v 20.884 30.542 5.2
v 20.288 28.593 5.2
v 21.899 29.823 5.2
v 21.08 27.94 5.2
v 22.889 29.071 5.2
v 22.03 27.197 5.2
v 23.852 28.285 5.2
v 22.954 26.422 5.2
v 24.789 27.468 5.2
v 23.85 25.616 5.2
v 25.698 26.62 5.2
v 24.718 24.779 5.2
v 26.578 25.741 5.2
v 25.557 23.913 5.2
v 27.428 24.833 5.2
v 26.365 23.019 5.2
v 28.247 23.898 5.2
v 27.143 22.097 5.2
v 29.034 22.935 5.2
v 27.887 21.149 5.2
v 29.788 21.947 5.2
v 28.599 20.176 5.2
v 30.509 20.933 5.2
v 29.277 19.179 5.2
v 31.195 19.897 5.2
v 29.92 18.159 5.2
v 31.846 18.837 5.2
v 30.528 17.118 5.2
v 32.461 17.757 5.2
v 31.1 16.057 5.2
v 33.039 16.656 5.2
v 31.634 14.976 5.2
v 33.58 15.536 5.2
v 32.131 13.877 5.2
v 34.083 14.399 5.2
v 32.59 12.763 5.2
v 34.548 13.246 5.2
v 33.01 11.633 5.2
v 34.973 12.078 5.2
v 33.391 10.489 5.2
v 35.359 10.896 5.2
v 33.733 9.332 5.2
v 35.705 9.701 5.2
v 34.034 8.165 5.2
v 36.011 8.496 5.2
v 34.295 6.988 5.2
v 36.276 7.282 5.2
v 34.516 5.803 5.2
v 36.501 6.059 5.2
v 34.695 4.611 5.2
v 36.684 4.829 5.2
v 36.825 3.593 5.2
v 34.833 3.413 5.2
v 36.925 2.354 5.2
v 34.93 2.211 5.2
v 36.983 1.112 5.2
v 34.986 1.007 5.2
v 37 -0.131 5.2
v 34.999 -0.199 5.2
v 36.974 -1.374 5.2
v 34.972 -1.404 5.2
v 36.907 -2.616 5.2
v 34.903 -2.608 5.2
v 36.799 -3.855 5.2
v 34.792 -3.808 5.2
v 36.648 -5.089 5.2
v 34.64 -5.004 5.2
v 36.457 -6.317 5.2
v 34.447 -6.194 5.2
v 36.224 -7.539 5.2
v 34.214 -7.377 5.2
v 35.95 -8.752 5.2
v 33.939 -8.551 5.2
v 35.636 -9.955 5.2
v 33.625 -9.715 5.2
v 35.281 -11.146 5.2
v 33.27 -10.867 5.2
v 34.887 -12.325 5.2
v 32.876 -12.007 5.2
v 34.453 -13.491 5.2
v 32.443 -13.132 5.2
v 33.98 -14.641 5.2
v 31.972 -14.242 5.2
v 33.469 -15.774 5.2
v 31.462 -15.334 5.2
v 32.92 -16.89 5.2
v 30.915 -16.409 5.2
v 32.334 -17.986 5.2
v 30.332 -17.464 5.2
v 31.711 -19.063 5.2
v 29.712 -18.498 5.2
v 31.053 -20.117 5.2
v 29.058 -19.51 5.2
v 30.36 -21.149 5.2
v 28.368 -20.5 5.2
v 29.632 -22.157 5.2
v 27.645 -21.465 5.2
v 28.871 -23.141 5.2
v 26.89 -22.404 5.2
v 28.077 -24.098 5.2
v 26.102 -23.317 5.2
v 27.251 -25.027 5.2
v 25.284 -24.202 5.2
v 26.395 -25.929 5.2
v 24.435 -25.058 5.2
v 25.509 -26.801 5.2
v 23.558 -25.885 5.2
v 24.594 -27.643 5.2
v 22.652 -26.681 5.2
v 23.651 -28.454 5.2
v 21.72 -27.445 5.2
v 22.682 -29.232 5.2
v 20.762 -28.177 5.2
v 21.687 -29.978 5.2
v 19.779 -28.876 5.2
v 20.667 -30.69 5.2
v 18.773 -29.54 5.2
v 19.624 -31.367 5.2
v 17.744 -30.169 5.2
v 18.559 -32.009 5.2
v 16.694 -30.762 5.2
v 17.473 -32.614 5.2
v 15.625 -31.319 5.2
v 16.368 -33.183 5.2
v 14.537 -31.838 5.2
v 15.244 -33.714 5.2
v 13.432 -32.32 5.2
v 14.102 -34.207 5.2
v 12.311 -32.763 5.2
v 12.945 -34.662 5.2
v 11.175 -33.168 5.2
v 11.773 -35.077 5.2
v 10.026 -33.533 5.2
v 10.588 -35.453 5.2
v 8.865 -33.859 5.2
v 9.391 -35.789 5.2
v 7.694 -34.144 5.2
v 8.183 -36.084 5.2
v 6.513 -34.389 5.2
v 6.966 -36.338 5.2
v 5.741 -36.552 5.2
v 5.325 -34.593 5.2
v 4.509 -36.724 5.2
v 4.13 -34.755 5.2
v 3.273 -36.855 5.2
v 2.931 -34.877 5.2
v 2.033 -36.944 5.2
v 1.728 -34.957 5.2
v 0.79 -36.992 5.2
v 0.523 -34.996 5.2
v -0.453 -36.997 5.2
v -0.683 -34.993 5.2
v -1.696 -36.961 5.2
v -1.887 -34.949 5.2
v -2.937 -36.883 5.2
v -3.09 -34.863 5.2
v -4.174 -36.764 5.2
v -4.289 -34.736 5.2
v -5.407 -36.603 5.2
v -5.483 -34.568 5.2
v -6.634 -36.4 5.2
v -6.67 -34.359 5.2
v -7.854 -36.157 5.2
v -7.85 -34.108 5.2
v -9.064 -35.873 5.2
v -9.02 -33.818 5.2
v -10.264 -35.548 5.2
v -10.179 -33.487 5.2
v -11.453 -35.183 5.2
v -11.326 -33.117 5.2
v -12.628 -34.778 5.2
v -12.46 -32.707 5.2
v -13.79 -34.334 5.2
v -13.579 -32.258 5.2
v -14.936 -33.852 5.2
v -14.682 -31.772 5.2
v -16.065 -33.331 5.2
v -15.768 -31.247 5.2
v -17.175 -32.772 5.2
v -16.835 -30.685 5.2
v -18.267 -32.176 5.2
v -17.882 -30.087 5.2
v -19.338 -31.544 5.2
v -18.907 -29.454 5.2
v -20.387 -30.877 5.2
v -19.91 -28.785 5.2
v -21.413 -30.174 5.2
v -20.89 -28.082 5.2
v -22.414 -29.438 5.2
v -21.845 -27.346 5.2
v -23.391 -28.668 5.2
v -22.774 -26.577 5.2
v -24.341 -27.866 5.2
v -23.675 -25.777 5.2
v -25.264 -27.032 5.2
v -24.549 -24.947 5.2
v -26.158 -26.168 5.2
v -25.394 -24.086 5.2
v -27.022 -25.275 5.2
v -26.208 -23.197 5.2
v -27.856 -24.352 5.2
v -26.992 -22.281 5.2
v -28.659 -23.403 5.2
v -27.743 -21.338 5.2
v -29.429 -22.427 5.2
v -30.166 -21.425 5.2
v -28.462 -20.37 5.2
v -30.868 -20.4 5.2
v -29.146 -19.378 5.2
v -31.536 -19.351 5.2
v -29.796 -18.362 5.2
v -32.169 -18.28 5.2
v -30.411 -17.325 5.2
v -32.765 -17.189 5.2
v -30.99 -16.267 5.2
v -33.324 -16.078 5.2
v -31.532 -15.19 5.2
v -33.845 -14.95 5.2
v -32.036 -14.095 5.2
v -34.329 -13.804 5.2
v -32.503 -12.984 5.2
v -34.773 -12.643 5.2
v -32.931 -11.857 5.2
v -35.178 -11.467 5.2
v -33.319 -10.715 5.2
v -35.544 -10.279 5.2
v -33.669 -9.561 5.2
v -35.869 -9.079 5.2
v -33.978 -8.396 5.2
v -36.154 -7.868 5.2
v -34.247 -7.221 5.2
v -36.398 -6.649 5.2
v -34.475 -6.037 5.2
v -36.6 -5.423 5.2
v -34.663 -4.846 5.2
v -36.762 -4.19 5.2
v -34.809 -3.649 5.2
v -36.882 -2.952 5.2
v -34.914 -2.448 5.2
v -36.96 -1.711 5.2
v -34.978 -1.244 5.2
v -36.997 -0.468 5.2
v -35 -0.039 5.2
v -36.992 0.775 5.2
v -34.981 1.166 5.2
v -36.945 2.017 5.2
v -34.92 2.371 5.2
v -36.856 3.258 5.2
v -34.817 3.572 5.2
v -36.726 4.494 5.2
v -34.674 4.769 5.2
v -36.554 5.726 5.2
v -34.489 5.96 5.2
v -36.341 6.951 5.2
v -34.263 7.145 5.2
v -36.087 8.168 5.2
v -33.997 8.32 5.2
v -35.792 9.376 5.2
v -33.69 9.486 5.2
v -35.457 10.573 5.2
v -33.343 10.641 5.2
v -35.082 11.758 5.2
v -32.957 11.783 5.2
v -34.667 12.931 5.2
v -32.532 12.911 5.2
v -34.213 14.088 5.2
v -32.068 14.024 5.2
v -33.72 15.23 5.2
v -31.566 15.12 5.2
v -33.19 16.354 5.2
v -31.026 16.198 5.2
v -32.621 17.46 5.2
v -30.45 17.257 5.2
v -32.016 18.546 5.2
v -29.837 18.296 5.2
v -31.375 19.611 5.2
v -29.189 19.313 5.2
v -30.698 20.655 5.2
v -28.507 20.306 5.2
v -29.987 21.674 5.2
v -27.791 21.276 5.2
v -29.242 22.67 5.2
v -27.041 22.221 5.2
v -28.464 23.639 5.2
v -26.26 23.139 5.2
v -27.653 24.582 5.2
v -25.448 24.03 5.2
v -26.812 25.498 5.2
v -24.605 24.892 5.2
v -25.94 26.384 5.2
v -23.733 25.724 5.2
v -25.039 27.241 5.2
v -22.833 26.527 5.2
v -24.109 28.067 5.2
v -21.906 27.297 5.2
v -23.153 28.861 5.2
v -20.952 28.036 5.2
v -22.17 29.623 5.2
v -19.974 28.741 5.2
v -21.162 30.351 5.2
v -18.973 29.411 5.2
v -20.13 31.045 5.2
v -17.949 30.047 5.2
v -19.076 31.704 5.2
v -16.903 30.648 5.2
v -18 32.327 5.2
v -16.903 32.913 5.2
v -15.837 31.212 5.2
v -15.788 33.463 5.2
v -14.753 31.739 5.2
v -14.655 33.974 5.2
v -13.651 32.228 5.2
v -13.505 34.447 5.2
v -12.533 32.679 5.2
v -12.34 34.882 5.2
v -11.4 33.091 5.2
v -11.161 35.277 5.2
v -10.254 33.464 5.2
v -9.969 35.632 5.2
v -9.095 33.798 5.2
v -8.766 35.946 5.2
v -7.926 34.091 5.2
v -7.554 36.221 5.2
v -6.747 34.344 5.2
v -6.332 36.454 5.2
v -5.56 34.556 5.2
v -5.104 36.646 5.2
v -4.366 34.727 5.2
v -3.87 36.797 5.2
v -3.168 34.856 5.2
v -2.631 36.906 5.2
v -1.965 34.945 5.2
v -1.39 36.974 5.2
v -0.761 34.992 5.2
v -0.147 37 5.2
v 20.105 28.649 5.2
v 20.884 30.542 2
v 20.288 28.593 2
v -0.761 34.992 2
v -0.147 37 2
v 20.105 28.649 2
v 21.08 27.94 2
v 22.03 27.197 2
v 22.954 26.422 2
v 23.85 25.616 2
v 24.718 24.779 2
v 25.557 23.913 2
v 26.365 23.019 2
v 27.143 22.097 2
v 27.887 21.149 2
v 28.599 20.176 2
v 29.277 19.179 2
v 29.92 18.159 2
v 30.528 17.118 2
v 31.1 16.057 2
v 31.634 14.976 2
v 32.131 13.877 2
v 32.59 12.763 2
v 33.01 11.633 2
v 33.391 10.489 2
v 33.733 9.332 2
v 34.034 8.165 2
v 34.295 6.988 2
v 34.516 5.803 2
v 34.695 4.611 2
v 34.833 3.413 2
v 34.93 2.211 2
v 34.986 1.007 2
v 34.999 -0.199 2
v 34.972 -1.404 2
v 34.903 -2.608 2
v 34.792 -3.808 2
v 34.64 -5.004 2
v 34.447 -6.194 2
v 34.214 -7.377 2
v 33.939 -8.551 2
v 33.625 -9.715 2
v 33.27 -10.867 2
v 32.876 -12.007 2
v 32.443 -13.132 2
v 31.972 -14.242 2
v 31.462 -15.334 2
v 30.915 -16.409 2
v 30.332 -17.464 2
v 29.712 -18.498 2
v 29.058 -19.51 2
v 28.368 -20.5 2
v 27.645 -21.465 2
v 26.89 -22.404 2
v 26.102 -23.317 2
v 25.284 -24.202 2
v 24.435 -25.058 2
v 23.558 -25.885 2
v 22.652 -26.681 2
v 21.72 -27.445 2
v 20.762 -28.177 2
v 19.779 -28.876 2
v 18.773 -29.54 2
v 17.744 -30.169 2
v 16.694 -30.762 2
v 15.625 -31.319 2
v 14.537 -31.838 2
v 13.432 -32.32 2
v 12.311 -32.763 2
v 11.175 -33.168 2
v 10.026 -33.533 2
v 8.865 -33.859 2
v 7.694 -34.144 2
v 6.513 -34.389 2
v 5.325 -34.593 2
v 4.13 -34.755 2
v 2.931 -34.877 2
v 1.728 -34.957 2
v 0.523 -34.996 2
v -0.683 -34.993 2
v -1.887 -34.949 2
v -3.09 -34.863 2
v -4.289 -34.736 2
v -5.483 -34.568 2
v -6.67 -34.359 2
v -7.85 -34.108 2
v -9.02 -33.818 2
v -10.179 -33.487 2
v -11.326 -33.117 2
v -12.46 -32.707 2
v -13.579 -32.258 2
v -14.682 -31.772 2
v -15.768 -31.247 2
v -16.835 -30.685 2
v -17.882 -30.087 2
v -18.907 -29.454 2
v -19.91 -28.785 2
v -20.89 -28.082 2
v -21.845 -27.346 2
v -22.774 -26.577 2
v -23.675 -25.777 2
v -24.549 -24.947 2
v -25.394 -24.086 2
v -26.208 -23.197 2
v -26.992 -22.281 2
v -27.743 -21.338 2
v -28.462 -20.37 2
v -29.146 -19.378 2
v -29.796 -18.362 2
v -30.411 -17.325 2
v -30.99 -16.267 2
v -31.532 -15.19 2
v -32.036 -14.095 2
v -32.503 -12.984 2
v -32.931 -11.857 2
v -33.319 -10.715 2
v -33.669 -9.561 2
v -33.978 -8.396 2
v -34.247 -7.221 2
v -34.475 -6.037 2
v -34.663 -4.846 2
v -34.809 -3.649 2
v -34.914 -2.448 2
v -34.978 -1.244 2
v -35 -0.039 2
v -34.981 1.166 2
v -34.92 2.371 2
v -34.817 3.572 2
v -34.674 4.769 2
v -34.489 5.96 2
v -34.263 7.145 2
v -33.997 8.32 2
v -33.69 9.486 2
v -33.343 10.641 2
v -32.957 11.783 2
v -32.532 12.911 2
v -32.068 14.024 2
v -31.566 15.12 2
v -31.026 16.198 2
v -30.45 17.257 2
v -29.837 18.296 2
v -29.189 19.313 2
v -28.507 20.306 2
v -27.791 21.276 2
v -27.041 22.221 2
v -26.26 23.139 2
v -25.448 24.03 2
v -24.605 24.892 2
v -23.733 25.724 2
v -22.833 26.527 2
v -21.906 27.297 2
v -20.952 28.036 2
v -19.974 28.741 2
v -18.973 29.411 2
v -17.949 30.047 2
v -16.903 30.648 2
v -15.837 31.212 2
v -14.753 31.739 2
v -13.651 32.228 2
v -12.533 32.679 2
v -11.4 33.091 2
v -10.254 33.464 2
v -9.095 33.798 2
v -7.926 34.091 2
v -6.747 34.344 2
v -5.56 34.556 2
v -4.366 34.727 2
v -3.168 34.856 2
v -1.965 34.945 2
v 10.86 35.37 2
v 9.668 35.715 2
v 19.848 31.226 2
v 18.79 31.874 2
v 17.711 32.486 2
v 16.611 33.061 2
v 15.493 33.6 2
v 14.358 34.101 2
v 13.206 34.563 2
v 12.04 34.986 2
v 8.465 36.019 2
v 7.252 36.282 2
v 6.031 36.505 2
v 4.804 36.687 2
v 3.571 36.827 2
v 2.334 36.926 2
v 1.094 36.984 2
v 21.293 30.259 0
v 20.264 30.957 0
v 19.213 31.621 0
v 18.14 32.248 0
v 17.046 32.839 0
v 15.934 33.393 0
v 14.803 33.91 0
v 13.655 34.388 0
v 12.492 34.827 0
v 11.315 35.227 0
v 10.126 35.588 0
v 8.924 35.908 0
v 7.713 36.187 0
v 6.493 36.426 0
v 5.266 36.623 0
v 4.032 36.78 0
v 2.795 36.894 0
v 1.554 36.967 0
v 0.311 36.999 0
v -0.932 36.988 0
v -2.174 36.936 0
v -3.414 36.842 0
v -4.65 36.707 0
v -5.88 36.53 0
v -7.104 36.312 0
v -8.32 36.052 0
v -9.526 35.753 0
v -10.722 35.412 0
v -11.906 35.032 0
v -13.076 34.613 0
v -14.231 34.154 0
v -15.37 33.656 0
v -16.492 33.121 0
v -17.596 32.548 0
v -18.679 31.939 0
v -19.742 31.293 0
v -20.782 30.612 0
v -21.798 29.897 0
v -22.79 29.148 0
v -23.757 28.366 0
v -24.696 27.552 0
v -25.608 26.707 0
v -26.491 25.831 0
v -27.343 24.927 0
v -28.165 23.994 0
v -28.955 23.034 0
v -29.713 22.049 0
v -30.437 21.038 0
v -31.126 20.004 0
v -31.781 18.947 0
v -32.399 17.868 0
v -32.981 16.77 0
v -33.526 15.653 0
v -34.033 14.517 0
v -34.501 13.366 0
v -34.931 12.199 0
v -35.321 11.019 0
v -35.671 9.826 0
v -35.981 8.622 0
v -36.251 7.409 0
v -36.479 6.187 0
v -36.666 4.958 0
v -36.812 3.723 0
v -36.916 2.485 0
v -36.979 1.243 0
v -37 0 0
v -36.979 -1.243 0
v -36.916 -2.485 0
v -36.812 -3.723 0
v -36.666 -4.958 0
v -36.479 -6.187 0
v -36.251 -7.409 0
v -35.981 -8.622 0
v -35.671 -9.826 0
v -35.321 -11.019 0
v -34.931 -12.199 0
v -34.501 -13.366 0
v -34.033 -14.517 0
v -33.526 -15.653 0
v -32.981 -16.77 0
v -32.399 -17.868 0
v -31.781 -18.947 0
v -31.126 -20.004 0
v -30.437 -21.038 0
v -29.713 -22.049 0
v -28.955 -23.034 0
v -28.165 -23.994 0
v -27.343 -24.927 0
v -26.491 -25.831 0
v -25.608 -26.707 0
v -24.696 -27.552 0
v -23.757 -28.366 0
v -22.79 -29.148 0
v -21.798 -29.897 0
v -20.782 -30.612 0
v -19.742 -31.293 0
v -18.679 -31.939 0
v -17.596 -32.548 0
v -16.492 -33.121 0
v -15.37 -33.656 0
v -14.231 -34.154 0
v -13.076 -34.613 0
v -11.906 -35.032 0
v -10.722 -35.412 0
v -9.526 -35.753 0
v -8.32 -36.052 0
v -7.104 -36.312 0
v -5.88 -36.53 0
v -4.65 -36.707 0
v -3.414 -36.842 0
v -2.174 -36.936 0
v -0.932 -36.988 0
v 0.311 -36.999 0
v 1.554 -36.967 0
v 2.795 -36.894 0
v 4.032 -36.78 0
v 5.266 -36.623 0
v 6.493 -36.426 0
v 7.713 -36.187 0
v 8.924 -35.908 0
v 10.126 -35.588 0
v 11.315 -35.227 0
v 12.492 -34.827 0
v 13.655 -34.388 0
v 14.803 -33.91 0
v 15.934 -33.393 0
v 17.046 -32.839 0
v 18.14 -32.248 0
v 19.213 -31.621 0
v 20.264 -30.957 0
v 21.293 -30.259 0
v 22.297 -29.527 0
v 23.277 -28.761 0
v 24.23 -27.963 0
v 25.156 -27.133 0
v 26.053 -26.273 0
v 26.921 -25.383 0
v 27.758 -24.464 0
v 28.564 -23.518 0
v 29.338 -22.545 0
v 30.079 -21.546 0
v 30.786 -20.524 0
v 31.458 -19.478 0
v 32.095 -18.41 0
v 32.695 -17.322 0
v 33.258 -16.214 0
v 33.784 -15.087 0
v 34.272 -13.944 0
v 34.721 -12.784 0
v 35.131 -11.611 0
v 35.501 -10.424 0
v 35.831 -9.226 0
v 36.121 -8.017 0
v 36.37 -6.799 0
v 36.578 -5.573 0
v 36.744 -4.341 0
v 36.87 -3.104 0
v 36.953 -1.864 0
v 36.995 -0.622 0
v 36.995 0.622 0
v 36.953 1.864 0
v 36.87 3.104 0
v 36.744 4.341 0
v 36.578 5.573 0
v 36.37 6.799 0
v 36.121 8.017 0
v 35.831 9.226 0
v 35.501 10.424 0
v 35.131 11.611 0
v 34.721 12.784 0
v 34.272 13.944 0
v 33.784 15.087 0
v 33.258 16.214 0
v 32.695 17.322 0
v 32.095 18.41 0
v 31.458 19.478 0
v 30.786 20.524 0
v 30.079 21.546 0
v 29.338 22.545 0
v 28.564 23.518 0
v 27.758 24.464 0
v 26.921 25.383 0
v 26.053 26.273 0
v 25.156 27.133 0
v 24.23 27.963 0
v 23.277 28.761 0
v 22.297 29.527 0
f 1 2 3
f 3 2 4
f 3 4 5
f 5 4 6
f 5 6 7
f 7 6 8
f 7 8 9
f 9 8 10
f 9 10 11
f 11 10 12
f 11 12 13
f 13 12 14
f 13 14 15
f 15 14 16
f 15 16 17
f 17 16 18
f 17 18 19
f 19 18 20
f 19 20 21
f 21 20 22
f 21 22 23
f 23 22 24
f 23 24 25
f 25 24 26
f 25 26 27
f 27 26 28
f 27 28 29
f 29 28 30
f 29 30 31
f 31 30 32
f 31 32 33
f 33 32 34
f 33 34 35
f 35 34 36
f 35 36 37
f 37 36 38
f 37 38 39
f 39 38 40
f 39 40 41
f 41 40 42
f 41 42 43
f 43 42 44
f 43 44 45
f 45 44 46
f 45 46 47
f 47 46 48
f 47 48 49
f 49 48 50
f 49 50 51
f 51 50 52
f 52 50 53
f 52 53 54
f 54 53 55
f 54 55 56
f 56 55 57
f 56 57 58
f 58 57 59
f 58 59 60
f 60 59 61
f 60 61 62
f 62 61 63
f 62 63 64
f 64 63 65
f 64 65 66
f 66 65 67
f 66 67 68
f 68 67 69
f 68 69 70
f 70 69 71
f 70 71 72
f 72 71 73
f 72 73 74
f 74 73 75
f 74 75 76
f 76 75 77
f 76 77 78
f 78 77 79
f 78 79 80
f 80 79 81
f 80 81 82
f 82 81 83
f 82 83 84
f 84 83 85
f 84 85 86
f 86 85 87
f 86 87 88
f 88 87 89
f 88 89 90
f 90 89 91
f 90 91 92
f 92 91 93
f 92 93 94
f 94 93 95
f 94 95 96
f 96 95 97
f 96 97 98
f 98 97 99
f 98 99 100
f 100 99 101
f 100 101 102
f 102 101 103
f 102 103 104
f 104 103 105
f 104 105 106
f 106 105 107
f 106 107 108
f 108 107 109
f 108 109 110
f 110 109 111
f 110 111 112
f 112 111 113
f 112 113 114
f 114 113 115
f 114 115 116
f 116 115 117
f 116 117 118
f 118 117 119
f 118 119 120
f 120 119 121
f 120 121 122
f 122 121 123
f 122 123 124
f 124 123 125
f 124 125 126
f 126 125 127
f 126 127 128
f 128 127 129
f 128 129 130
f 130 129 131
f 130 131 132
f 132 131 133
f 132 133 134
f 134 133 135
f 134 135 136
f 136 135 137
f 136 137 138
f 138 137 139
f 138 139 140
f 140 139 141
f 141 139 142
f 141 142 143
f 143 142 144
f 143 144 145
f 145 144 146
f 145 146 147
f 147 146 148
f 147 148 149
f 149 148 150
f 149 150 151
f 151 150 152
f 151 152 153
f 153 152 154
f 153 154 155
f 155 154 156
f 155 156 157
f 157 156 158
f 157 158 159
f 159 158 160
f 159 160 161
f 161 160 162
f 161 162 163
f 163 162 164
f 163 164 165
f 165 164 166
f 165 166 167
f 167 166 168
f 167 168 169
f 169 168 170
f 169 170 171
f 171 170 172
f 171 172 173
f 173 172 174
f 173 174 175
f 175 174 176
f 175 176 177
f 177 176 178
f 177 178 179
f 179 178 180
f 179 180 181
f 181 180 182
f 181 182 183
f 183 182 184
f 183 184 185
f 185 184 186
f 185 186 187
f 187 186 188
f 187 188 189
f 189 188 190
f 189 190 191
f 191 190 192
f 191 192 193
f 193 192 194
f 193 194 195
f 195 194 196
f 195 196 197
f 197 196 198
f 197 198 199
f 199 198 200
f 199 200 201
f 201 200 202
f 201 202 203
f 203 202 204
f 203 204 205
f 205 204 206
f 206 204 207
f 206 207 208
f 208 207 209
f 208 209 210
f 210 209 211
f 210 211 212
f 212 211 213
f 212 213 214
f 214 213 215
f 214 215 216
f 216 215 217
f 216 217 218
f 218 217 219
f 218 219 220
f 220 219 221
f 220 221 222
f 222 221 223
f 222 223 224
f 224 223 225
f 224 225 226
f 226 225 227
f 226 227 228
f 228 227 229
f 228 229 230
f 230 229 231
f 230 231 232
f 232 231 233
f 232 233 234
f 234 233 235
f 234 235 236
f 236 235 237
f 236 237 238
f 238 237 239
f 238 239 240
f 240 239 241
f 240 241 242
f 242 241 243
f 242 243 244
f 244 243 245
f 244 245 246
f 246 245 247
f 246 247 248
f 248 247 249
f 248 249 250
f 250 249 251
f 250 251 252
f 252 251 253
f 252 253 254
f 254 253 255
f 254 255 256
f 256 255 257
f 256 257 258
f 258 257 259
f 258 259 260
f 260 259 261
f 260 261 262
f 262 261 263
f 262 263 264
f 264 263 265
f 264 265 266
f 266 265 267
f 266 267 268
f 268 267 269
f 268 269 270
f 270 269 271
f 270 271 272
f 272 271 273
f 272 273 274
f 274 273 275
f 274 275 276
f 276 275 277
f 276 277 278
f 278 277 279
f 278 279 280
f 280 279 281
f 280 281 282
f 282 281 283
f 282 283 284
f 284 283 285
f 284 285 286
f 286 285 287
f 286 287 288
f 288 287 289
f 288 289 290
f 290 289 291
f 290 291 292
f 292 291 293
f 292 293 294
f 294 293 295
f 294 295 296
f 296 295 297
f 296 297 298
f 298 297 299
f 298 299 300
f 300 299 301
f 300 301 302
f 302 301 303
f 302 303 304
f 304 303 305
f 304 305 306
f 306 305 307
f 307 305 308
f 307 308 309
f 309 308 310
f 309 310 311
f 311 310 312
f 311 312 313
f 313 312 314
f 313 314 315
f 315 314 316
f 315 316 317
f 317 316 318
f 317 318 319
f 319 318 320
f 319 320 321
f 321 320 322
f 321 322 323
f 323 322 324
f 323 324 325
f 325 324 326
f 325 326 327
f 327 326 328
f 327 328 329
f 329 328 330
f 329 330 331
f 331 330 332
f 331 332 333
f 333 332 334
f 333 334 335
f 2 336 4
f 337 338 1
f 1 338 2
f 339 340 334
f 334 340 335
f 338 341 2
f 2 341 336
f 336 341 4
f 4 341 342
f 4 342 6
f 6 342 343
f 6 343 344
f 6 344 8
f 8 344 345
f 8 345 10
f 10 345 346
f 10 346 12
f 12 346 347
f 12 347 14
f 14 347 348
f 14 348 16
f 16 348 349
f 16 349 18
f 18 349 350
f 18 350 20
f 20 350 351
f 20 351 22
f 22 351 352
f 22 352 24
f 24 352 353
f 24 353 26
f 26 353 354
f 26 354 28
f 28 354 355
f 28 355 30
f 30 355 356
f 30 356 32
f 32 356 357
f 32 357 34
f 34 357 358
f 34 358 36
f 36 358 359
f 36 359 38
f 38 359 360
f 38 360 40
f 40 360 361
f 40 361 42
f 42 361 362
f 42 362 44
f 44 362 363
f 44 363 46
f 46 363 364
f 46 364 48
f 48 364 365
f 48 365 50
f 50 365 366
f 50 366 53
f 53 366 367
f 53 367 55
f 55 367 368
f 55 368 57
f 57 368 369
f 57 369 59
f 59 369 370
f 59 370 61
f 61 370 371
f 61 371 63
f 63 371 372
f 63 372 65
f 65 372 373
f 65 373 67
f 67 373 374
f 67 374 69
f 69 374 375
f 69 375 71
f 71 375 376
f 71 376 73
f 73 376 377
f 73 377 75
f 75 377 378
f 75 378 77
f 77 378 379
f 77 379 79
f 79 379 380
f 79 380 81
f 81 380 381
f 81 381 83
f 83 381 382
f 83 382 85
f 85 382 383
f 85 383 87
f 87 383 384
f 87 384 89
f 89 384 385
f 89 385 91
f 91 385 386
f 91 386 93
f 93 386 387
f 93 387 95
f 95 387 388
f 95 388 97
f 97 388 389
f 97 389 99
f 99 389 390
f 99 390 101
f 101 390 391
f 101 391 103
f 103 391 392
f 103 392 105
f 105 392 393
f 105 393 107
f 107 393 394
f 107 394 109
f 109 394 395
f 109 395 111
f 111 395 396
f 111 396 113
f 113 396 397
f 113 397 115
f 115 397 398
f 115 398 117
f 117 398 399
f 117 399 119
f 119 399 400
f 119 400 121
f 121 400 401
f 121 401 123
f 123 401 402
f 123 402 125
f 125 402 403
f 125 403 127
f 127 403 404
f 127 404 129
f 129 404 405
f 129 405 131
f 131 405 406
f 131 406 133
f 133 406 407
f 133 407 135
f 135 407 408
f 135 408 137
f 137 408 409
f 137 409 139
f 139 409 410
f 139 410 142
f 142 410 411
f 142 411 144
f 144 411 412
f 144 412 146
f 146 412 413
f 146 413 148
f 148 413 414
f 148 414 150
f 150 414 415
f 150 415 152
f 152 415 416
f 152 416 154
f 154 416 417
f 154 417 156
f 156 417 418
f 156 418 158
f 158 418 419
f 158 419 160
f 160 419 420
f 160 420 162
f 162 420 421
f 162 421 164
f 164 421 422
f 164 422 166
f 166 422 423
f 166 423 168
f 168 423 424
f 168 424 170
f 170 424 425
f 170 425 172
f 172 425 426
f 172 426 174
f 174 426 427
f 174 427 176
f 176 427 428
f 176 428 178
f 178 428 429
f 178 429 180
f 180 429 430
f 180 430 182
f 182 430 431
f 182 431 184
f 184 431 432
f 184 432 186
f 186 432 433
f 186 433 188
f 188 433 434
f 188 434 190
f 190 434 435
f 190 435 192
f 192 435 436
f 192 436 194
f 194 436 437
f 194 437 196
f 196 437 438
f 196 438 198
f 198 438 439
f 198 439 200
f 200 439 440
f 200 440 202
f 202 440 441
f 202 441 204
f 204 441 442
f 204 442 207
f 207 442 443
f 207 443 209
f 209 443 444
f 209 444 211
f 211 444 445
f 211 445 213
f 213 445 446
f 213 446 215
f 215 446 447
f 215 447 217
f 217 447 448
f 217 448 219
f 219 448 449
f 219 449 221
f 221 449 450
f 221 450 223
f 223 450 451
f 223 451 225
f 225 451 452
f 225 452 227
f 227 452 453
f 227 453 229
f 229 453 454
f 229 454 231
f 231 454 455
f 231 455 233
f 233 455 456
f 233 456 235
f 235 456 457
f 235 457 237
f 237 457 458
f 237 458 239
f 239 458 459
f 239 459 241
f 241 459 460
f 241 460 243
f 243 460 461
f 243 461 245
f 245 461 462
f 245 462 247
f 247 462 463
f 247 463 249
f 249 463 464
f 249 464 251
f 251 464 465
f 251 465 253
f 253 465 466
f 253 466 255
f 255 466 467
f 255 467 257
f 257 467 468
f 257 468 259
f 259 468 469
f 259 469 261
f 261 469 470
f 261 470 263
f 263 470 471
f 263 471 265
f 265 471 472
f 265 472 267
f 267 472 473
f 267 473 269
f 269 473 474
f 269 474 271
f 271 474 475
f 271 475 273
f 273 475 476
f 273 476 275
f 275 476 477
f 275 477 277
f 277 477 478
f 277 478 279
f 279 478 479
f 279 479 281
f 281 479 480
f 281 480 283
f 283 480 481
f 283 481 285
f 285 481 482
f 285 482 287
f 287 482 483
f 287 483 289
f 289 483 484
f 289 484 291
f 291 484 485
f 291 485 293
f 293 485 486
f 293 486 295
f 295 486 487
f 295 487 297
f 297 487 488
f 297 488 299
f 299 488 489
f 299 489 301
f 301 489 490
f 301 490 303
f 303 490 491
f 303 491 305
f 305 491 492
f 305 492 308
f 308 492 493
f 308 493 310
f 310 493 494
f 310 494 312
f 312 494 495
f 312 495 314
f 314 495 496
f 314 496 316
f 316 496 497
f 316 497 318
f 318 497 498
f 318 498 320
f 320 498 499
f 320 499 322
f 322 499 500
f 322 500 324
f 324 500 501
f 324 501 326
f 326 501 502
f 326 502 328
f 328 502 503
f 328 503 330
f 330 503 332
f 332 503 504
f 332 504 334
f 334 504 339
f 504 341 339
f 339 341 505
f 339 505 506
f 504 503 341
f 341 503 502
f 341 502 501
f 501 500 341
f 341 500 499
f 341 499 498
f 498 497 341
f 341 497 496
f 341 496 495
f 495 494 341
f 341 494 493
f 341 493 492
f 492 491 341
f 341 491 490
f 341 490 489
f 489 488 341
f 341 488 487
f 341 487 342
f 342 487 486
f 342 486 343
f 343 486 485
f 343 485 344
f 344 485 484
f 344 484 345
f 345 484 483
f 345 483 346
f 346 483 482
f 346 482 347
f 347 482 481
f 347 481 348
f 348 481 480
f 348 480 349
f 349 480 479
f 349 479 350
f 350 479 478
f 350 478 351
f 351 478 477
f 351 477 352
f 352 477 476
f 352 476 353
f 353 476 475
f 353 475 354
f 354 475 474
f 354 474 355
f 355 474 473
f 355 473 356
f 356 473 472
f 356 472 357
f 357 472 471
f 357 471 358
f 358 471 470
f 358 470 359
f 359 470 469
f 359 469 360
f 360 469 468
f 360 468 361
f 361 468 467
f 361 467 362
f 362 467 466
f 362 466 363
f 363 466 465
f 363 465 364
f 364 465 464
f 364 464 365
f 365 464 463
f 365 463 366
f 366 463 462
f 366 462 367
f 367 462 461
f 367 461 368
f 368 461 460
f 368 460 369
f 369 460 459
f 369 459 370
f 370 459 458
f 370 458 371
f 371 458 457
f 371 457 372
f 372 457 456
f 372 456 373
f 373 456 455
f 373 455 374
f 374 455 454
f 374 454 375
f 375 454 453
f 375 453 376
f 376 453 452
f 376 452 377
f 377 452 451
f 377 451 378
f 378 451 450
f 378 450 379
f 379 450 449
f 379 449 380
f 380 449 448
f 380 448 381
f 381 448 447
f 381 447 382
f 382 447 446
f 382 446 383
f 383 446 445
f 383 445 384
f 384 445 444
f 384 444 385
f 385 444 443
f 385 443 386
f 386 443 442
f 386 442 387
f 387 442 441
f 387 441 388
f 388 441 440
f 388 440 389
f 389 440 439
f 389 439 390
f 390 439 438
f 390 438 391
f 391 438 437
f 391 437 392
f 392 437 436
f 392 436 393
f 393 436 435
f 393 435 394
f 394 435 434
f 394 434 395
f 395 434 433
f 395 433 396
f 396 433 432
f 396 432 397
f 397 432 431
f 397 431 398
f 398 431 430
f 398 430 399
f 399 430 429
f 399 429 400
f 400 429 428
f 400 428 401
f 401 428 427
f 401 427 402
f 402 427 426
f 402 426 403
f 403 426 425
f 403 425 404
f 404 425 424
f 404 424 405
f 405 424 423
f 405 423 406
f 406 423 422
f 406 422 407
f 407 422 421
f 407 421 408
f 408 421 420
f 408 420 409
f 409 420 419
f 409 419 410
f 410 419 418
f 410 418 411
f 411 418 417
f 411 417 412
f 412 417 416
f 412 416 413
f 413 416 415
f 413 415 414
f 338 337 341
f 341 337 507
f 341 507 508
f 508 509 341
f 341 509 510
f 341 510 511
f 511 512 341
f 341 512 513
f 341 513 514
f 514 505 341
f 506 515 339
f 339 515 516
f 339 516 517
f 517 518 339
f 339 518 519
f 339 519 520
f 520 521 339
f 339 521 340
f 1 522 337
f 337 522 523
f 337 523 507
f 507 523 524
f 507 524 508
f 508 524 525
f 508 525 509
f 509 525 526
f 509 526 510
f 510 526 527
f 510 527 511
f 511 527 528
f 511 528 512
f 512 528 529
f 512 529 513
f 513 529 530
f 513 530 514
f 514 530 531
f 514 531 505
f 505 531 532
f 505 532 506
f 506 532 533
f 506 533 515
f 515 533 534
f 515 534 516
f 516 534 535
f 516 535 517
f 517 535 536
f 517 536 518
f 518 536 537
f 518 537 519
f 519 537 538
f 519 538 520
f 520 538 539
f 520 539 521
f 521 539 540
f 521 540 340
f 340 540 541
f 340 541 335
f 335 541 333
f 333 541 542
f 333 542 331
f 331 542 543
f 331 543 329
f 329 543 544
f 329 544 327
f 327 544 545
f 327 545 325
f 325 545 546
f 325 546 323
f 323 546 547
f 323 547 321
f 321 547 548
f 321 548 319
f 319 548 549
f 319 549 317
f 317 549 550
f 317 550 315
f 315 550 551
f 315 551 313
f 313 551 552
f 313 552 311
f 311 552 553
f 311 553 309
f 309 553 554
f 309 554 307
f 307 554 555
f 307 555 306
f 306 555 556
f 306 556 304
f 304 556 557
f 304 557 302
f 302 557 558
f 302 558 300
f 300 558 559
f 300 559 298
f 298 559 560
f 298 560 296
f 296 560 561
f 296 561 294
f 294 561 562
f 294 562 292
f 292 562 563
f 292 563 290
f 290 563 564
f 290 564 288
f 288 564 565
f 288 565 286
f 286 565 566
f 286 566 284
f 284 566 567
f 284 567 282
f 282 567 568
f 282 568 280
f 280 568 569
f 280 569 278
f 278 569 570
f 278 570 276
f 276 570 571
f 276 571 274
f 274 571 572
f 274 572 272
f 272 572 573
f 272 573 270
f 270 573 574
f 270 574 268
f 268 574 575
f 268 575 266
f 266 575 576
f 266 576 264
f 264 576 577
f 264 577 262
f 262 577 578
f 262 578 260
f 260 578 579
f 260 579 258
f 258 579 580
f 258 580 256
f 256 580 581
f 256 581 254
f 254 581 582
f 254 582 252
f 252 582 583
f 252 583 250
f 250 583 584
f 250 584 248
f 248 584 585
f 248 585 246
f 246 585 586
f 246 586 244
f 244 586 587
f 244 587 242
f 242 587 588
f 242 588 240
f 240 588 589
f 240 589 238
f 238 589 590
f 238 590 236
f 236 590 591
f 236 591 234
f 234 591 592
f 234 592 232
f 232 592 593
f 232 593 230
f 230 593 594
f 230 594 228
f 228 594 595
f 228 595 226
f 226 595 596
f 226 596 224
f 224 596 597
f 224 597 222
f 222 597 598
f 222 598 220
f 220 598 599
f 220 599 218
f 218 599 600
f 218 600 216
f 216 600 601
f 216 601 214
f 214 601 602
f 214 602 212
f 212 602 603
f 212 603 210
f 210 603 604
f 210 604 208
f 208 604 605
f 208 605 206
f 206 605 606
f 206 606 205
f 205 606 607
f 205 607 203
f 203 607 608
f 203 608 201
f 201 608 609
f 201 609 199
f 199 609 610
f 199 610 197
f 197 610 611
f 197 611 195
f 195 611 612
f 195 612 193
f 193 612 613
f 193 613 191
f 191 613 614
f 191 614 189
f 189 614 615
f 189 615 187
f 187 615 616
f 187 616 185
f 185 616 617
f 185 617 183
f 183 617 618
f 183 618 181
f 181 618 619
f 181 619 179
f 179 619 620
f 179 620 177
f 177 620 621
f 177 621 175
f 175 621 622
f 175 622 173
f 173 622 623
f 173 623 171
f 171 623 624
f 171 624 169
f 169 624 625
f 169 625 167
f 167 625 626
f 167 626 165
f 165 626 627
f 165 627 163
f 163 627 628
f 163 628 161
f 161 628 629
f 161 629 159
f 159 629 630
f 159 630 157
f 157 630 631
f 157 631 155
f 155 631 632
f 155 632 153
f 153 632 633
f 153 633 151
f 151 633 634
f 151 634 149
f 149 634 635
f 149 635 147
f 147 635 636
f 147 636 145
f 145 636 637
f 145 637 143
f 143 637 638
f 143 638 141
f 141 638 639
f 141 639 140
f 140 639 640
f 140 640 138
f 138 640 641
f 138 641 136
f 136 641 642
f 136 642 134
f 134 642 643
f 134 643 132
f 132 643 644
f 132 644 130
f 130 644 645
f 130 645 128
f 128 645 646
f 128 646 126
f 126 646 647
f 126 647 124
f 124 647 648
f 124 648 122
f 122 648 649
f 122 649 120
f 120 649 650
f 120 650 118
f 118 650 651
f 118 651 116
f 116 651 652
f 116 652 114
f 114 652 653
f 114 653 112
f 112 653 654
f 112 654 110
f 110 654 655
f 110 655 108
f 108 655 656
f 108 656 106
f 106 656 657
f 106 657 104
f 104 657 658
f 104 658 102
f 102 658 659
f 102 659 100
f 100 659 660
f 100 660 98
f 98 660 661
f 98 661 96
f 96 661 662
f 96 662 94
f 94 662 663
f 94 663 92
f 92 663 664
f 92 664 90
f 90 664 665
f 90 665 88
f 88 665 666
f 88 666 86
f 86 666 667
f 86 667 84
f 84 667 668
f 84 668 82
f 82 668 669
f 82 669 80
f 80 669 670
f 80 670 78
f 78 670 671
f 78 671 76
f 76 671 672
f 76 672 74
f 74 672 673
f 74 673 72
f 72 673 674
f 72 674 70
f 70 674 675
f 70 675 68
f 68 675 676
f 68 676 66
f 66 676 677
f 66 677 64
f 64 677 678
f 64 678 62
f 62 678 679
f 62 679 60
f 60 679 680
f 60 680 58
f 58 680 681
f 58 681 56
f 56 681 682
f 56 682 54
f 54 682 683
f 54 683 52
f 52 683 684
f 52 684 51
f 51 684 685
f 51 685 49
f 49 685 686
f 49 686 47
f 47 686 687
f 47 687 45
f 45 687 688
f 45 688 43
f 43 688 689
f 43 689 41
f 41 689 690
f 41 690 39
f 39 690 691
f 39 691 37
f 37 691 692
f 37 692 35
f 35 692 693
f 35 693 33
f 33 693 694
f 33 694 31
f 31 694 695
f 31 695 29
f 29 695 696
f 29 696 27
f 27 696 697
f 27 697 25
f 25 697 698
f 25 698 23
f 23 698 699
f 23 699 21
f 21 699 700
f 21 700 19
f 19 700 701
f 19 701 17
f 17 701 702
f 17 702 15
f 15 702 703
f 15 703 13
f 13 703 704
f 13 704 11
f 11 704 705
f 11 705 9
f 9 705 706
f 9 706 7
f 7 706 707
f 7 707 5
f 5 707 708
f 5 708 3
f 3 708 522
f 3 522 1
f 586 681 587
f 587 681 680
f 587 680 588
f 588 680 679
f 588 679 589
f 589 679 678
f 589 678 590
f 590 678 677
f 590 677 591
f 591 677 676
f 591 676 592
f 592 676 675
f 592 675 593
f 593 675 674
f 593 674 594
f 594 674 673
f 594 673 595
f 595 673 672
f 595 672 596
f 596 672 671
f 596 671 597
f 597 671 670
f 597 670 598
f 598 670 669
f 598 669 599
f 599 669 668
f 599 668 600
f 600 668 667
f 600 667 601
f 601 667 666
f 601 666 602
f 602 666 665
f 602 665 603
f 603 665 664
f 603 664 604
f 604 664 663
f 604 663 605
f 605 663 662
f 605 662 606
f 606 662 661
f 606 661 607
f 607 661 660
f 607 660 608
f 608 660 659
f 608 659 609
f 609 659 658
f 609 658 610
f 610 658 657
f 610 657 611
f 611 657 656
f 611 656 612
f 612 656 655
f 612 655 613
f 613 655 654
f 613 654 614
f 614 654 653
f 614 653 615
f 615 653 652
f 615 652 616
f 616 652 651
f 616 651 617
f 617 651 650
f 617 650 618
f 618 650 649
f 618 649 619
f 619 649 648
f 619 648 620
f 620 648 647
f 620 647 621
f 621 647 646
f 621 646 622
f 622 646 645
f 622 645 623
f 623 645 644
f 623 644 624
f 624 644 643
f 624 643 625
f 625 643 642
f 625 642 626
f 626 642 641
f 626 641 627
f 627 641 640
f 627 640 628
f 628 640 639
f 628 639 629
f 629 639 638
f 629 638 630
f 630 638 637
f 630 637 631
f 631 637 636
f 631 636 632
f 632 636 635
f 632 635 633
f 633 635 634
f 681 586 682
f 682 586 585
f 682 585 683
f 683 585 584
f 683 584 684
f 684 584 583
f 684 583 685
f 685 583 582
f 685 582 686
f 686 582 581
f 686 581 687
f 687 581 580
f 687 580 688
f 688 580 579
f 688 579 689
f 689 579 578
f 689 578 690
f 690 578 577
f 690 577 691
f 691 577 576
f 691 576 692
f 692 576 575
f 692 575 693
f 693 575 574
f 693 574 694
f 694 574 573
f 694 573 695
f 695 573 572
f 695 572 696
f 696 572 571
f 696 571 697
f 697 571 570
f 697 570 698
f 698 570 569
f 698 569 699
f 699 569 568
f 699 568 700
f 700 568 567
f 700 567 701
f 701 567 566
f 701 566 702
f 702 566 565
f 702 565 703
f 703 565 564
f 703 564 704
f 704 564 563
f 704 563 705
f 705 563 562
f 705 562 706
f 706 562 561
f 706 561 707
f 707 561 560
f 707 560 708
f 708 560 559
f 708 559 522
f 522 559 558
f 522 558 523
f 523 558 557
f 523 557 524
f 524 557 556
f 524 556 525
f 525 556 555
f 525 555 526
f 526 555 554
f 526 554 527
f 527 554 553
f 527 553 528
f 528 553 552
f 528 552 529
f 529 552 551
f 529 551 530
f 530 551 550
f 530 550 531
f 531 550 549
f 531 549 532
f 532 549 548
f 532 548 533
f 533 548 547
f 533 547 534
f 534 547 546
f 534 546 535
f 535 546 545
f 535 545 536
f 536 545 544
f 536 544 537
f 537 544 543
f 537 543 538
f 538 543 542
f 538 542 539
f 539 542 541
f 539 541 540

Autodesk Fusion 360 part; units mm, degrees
sketch "Sketch1" plane through (0, 0, 0) normal (0, 0, 1) x (1, 0, 0)
  circle A0 centre (0, 0) radius 37
  dimension "d1" = 74
extrude "Extrude1" add sketch "Sketch1" along normal blind 3.2
shell "Shell1" thickness 2 removed faces 1 at (-10.1246, 15.5782, 3.2)
sketch "Sketch2" plane through (0, 0, 3.2) normal (0, 0, 1) x (-1, 0, 0)
  circle A0 centre (0, 0) radius 35
  circle A1 centre (0, 0) radius 37
  line L0 (0.7607, -34.9917) -> (-20.2884, -28.5935)
  line L1 (-20.2884, -28.5935) -> (-21.7759, -33.4571)
  line L2 (-21.7759, -33.4571) -> (-0.7372, -39.8892)
  line L3 (-0.7372, -39.8892) -> (0.7607, -34.9917)
  dimension "d5" = 22
extrude "Extrude2" cut sketch "Sketch2" against normal blind 1.2 contours A0 A1 L0 L1 L3 picked at (-0.9203, -35.5996)
extrude "Extrude3" add 1 faces at (35.2522, 4.9796, 3.2) along direction (0, 0, 1) blind 2
